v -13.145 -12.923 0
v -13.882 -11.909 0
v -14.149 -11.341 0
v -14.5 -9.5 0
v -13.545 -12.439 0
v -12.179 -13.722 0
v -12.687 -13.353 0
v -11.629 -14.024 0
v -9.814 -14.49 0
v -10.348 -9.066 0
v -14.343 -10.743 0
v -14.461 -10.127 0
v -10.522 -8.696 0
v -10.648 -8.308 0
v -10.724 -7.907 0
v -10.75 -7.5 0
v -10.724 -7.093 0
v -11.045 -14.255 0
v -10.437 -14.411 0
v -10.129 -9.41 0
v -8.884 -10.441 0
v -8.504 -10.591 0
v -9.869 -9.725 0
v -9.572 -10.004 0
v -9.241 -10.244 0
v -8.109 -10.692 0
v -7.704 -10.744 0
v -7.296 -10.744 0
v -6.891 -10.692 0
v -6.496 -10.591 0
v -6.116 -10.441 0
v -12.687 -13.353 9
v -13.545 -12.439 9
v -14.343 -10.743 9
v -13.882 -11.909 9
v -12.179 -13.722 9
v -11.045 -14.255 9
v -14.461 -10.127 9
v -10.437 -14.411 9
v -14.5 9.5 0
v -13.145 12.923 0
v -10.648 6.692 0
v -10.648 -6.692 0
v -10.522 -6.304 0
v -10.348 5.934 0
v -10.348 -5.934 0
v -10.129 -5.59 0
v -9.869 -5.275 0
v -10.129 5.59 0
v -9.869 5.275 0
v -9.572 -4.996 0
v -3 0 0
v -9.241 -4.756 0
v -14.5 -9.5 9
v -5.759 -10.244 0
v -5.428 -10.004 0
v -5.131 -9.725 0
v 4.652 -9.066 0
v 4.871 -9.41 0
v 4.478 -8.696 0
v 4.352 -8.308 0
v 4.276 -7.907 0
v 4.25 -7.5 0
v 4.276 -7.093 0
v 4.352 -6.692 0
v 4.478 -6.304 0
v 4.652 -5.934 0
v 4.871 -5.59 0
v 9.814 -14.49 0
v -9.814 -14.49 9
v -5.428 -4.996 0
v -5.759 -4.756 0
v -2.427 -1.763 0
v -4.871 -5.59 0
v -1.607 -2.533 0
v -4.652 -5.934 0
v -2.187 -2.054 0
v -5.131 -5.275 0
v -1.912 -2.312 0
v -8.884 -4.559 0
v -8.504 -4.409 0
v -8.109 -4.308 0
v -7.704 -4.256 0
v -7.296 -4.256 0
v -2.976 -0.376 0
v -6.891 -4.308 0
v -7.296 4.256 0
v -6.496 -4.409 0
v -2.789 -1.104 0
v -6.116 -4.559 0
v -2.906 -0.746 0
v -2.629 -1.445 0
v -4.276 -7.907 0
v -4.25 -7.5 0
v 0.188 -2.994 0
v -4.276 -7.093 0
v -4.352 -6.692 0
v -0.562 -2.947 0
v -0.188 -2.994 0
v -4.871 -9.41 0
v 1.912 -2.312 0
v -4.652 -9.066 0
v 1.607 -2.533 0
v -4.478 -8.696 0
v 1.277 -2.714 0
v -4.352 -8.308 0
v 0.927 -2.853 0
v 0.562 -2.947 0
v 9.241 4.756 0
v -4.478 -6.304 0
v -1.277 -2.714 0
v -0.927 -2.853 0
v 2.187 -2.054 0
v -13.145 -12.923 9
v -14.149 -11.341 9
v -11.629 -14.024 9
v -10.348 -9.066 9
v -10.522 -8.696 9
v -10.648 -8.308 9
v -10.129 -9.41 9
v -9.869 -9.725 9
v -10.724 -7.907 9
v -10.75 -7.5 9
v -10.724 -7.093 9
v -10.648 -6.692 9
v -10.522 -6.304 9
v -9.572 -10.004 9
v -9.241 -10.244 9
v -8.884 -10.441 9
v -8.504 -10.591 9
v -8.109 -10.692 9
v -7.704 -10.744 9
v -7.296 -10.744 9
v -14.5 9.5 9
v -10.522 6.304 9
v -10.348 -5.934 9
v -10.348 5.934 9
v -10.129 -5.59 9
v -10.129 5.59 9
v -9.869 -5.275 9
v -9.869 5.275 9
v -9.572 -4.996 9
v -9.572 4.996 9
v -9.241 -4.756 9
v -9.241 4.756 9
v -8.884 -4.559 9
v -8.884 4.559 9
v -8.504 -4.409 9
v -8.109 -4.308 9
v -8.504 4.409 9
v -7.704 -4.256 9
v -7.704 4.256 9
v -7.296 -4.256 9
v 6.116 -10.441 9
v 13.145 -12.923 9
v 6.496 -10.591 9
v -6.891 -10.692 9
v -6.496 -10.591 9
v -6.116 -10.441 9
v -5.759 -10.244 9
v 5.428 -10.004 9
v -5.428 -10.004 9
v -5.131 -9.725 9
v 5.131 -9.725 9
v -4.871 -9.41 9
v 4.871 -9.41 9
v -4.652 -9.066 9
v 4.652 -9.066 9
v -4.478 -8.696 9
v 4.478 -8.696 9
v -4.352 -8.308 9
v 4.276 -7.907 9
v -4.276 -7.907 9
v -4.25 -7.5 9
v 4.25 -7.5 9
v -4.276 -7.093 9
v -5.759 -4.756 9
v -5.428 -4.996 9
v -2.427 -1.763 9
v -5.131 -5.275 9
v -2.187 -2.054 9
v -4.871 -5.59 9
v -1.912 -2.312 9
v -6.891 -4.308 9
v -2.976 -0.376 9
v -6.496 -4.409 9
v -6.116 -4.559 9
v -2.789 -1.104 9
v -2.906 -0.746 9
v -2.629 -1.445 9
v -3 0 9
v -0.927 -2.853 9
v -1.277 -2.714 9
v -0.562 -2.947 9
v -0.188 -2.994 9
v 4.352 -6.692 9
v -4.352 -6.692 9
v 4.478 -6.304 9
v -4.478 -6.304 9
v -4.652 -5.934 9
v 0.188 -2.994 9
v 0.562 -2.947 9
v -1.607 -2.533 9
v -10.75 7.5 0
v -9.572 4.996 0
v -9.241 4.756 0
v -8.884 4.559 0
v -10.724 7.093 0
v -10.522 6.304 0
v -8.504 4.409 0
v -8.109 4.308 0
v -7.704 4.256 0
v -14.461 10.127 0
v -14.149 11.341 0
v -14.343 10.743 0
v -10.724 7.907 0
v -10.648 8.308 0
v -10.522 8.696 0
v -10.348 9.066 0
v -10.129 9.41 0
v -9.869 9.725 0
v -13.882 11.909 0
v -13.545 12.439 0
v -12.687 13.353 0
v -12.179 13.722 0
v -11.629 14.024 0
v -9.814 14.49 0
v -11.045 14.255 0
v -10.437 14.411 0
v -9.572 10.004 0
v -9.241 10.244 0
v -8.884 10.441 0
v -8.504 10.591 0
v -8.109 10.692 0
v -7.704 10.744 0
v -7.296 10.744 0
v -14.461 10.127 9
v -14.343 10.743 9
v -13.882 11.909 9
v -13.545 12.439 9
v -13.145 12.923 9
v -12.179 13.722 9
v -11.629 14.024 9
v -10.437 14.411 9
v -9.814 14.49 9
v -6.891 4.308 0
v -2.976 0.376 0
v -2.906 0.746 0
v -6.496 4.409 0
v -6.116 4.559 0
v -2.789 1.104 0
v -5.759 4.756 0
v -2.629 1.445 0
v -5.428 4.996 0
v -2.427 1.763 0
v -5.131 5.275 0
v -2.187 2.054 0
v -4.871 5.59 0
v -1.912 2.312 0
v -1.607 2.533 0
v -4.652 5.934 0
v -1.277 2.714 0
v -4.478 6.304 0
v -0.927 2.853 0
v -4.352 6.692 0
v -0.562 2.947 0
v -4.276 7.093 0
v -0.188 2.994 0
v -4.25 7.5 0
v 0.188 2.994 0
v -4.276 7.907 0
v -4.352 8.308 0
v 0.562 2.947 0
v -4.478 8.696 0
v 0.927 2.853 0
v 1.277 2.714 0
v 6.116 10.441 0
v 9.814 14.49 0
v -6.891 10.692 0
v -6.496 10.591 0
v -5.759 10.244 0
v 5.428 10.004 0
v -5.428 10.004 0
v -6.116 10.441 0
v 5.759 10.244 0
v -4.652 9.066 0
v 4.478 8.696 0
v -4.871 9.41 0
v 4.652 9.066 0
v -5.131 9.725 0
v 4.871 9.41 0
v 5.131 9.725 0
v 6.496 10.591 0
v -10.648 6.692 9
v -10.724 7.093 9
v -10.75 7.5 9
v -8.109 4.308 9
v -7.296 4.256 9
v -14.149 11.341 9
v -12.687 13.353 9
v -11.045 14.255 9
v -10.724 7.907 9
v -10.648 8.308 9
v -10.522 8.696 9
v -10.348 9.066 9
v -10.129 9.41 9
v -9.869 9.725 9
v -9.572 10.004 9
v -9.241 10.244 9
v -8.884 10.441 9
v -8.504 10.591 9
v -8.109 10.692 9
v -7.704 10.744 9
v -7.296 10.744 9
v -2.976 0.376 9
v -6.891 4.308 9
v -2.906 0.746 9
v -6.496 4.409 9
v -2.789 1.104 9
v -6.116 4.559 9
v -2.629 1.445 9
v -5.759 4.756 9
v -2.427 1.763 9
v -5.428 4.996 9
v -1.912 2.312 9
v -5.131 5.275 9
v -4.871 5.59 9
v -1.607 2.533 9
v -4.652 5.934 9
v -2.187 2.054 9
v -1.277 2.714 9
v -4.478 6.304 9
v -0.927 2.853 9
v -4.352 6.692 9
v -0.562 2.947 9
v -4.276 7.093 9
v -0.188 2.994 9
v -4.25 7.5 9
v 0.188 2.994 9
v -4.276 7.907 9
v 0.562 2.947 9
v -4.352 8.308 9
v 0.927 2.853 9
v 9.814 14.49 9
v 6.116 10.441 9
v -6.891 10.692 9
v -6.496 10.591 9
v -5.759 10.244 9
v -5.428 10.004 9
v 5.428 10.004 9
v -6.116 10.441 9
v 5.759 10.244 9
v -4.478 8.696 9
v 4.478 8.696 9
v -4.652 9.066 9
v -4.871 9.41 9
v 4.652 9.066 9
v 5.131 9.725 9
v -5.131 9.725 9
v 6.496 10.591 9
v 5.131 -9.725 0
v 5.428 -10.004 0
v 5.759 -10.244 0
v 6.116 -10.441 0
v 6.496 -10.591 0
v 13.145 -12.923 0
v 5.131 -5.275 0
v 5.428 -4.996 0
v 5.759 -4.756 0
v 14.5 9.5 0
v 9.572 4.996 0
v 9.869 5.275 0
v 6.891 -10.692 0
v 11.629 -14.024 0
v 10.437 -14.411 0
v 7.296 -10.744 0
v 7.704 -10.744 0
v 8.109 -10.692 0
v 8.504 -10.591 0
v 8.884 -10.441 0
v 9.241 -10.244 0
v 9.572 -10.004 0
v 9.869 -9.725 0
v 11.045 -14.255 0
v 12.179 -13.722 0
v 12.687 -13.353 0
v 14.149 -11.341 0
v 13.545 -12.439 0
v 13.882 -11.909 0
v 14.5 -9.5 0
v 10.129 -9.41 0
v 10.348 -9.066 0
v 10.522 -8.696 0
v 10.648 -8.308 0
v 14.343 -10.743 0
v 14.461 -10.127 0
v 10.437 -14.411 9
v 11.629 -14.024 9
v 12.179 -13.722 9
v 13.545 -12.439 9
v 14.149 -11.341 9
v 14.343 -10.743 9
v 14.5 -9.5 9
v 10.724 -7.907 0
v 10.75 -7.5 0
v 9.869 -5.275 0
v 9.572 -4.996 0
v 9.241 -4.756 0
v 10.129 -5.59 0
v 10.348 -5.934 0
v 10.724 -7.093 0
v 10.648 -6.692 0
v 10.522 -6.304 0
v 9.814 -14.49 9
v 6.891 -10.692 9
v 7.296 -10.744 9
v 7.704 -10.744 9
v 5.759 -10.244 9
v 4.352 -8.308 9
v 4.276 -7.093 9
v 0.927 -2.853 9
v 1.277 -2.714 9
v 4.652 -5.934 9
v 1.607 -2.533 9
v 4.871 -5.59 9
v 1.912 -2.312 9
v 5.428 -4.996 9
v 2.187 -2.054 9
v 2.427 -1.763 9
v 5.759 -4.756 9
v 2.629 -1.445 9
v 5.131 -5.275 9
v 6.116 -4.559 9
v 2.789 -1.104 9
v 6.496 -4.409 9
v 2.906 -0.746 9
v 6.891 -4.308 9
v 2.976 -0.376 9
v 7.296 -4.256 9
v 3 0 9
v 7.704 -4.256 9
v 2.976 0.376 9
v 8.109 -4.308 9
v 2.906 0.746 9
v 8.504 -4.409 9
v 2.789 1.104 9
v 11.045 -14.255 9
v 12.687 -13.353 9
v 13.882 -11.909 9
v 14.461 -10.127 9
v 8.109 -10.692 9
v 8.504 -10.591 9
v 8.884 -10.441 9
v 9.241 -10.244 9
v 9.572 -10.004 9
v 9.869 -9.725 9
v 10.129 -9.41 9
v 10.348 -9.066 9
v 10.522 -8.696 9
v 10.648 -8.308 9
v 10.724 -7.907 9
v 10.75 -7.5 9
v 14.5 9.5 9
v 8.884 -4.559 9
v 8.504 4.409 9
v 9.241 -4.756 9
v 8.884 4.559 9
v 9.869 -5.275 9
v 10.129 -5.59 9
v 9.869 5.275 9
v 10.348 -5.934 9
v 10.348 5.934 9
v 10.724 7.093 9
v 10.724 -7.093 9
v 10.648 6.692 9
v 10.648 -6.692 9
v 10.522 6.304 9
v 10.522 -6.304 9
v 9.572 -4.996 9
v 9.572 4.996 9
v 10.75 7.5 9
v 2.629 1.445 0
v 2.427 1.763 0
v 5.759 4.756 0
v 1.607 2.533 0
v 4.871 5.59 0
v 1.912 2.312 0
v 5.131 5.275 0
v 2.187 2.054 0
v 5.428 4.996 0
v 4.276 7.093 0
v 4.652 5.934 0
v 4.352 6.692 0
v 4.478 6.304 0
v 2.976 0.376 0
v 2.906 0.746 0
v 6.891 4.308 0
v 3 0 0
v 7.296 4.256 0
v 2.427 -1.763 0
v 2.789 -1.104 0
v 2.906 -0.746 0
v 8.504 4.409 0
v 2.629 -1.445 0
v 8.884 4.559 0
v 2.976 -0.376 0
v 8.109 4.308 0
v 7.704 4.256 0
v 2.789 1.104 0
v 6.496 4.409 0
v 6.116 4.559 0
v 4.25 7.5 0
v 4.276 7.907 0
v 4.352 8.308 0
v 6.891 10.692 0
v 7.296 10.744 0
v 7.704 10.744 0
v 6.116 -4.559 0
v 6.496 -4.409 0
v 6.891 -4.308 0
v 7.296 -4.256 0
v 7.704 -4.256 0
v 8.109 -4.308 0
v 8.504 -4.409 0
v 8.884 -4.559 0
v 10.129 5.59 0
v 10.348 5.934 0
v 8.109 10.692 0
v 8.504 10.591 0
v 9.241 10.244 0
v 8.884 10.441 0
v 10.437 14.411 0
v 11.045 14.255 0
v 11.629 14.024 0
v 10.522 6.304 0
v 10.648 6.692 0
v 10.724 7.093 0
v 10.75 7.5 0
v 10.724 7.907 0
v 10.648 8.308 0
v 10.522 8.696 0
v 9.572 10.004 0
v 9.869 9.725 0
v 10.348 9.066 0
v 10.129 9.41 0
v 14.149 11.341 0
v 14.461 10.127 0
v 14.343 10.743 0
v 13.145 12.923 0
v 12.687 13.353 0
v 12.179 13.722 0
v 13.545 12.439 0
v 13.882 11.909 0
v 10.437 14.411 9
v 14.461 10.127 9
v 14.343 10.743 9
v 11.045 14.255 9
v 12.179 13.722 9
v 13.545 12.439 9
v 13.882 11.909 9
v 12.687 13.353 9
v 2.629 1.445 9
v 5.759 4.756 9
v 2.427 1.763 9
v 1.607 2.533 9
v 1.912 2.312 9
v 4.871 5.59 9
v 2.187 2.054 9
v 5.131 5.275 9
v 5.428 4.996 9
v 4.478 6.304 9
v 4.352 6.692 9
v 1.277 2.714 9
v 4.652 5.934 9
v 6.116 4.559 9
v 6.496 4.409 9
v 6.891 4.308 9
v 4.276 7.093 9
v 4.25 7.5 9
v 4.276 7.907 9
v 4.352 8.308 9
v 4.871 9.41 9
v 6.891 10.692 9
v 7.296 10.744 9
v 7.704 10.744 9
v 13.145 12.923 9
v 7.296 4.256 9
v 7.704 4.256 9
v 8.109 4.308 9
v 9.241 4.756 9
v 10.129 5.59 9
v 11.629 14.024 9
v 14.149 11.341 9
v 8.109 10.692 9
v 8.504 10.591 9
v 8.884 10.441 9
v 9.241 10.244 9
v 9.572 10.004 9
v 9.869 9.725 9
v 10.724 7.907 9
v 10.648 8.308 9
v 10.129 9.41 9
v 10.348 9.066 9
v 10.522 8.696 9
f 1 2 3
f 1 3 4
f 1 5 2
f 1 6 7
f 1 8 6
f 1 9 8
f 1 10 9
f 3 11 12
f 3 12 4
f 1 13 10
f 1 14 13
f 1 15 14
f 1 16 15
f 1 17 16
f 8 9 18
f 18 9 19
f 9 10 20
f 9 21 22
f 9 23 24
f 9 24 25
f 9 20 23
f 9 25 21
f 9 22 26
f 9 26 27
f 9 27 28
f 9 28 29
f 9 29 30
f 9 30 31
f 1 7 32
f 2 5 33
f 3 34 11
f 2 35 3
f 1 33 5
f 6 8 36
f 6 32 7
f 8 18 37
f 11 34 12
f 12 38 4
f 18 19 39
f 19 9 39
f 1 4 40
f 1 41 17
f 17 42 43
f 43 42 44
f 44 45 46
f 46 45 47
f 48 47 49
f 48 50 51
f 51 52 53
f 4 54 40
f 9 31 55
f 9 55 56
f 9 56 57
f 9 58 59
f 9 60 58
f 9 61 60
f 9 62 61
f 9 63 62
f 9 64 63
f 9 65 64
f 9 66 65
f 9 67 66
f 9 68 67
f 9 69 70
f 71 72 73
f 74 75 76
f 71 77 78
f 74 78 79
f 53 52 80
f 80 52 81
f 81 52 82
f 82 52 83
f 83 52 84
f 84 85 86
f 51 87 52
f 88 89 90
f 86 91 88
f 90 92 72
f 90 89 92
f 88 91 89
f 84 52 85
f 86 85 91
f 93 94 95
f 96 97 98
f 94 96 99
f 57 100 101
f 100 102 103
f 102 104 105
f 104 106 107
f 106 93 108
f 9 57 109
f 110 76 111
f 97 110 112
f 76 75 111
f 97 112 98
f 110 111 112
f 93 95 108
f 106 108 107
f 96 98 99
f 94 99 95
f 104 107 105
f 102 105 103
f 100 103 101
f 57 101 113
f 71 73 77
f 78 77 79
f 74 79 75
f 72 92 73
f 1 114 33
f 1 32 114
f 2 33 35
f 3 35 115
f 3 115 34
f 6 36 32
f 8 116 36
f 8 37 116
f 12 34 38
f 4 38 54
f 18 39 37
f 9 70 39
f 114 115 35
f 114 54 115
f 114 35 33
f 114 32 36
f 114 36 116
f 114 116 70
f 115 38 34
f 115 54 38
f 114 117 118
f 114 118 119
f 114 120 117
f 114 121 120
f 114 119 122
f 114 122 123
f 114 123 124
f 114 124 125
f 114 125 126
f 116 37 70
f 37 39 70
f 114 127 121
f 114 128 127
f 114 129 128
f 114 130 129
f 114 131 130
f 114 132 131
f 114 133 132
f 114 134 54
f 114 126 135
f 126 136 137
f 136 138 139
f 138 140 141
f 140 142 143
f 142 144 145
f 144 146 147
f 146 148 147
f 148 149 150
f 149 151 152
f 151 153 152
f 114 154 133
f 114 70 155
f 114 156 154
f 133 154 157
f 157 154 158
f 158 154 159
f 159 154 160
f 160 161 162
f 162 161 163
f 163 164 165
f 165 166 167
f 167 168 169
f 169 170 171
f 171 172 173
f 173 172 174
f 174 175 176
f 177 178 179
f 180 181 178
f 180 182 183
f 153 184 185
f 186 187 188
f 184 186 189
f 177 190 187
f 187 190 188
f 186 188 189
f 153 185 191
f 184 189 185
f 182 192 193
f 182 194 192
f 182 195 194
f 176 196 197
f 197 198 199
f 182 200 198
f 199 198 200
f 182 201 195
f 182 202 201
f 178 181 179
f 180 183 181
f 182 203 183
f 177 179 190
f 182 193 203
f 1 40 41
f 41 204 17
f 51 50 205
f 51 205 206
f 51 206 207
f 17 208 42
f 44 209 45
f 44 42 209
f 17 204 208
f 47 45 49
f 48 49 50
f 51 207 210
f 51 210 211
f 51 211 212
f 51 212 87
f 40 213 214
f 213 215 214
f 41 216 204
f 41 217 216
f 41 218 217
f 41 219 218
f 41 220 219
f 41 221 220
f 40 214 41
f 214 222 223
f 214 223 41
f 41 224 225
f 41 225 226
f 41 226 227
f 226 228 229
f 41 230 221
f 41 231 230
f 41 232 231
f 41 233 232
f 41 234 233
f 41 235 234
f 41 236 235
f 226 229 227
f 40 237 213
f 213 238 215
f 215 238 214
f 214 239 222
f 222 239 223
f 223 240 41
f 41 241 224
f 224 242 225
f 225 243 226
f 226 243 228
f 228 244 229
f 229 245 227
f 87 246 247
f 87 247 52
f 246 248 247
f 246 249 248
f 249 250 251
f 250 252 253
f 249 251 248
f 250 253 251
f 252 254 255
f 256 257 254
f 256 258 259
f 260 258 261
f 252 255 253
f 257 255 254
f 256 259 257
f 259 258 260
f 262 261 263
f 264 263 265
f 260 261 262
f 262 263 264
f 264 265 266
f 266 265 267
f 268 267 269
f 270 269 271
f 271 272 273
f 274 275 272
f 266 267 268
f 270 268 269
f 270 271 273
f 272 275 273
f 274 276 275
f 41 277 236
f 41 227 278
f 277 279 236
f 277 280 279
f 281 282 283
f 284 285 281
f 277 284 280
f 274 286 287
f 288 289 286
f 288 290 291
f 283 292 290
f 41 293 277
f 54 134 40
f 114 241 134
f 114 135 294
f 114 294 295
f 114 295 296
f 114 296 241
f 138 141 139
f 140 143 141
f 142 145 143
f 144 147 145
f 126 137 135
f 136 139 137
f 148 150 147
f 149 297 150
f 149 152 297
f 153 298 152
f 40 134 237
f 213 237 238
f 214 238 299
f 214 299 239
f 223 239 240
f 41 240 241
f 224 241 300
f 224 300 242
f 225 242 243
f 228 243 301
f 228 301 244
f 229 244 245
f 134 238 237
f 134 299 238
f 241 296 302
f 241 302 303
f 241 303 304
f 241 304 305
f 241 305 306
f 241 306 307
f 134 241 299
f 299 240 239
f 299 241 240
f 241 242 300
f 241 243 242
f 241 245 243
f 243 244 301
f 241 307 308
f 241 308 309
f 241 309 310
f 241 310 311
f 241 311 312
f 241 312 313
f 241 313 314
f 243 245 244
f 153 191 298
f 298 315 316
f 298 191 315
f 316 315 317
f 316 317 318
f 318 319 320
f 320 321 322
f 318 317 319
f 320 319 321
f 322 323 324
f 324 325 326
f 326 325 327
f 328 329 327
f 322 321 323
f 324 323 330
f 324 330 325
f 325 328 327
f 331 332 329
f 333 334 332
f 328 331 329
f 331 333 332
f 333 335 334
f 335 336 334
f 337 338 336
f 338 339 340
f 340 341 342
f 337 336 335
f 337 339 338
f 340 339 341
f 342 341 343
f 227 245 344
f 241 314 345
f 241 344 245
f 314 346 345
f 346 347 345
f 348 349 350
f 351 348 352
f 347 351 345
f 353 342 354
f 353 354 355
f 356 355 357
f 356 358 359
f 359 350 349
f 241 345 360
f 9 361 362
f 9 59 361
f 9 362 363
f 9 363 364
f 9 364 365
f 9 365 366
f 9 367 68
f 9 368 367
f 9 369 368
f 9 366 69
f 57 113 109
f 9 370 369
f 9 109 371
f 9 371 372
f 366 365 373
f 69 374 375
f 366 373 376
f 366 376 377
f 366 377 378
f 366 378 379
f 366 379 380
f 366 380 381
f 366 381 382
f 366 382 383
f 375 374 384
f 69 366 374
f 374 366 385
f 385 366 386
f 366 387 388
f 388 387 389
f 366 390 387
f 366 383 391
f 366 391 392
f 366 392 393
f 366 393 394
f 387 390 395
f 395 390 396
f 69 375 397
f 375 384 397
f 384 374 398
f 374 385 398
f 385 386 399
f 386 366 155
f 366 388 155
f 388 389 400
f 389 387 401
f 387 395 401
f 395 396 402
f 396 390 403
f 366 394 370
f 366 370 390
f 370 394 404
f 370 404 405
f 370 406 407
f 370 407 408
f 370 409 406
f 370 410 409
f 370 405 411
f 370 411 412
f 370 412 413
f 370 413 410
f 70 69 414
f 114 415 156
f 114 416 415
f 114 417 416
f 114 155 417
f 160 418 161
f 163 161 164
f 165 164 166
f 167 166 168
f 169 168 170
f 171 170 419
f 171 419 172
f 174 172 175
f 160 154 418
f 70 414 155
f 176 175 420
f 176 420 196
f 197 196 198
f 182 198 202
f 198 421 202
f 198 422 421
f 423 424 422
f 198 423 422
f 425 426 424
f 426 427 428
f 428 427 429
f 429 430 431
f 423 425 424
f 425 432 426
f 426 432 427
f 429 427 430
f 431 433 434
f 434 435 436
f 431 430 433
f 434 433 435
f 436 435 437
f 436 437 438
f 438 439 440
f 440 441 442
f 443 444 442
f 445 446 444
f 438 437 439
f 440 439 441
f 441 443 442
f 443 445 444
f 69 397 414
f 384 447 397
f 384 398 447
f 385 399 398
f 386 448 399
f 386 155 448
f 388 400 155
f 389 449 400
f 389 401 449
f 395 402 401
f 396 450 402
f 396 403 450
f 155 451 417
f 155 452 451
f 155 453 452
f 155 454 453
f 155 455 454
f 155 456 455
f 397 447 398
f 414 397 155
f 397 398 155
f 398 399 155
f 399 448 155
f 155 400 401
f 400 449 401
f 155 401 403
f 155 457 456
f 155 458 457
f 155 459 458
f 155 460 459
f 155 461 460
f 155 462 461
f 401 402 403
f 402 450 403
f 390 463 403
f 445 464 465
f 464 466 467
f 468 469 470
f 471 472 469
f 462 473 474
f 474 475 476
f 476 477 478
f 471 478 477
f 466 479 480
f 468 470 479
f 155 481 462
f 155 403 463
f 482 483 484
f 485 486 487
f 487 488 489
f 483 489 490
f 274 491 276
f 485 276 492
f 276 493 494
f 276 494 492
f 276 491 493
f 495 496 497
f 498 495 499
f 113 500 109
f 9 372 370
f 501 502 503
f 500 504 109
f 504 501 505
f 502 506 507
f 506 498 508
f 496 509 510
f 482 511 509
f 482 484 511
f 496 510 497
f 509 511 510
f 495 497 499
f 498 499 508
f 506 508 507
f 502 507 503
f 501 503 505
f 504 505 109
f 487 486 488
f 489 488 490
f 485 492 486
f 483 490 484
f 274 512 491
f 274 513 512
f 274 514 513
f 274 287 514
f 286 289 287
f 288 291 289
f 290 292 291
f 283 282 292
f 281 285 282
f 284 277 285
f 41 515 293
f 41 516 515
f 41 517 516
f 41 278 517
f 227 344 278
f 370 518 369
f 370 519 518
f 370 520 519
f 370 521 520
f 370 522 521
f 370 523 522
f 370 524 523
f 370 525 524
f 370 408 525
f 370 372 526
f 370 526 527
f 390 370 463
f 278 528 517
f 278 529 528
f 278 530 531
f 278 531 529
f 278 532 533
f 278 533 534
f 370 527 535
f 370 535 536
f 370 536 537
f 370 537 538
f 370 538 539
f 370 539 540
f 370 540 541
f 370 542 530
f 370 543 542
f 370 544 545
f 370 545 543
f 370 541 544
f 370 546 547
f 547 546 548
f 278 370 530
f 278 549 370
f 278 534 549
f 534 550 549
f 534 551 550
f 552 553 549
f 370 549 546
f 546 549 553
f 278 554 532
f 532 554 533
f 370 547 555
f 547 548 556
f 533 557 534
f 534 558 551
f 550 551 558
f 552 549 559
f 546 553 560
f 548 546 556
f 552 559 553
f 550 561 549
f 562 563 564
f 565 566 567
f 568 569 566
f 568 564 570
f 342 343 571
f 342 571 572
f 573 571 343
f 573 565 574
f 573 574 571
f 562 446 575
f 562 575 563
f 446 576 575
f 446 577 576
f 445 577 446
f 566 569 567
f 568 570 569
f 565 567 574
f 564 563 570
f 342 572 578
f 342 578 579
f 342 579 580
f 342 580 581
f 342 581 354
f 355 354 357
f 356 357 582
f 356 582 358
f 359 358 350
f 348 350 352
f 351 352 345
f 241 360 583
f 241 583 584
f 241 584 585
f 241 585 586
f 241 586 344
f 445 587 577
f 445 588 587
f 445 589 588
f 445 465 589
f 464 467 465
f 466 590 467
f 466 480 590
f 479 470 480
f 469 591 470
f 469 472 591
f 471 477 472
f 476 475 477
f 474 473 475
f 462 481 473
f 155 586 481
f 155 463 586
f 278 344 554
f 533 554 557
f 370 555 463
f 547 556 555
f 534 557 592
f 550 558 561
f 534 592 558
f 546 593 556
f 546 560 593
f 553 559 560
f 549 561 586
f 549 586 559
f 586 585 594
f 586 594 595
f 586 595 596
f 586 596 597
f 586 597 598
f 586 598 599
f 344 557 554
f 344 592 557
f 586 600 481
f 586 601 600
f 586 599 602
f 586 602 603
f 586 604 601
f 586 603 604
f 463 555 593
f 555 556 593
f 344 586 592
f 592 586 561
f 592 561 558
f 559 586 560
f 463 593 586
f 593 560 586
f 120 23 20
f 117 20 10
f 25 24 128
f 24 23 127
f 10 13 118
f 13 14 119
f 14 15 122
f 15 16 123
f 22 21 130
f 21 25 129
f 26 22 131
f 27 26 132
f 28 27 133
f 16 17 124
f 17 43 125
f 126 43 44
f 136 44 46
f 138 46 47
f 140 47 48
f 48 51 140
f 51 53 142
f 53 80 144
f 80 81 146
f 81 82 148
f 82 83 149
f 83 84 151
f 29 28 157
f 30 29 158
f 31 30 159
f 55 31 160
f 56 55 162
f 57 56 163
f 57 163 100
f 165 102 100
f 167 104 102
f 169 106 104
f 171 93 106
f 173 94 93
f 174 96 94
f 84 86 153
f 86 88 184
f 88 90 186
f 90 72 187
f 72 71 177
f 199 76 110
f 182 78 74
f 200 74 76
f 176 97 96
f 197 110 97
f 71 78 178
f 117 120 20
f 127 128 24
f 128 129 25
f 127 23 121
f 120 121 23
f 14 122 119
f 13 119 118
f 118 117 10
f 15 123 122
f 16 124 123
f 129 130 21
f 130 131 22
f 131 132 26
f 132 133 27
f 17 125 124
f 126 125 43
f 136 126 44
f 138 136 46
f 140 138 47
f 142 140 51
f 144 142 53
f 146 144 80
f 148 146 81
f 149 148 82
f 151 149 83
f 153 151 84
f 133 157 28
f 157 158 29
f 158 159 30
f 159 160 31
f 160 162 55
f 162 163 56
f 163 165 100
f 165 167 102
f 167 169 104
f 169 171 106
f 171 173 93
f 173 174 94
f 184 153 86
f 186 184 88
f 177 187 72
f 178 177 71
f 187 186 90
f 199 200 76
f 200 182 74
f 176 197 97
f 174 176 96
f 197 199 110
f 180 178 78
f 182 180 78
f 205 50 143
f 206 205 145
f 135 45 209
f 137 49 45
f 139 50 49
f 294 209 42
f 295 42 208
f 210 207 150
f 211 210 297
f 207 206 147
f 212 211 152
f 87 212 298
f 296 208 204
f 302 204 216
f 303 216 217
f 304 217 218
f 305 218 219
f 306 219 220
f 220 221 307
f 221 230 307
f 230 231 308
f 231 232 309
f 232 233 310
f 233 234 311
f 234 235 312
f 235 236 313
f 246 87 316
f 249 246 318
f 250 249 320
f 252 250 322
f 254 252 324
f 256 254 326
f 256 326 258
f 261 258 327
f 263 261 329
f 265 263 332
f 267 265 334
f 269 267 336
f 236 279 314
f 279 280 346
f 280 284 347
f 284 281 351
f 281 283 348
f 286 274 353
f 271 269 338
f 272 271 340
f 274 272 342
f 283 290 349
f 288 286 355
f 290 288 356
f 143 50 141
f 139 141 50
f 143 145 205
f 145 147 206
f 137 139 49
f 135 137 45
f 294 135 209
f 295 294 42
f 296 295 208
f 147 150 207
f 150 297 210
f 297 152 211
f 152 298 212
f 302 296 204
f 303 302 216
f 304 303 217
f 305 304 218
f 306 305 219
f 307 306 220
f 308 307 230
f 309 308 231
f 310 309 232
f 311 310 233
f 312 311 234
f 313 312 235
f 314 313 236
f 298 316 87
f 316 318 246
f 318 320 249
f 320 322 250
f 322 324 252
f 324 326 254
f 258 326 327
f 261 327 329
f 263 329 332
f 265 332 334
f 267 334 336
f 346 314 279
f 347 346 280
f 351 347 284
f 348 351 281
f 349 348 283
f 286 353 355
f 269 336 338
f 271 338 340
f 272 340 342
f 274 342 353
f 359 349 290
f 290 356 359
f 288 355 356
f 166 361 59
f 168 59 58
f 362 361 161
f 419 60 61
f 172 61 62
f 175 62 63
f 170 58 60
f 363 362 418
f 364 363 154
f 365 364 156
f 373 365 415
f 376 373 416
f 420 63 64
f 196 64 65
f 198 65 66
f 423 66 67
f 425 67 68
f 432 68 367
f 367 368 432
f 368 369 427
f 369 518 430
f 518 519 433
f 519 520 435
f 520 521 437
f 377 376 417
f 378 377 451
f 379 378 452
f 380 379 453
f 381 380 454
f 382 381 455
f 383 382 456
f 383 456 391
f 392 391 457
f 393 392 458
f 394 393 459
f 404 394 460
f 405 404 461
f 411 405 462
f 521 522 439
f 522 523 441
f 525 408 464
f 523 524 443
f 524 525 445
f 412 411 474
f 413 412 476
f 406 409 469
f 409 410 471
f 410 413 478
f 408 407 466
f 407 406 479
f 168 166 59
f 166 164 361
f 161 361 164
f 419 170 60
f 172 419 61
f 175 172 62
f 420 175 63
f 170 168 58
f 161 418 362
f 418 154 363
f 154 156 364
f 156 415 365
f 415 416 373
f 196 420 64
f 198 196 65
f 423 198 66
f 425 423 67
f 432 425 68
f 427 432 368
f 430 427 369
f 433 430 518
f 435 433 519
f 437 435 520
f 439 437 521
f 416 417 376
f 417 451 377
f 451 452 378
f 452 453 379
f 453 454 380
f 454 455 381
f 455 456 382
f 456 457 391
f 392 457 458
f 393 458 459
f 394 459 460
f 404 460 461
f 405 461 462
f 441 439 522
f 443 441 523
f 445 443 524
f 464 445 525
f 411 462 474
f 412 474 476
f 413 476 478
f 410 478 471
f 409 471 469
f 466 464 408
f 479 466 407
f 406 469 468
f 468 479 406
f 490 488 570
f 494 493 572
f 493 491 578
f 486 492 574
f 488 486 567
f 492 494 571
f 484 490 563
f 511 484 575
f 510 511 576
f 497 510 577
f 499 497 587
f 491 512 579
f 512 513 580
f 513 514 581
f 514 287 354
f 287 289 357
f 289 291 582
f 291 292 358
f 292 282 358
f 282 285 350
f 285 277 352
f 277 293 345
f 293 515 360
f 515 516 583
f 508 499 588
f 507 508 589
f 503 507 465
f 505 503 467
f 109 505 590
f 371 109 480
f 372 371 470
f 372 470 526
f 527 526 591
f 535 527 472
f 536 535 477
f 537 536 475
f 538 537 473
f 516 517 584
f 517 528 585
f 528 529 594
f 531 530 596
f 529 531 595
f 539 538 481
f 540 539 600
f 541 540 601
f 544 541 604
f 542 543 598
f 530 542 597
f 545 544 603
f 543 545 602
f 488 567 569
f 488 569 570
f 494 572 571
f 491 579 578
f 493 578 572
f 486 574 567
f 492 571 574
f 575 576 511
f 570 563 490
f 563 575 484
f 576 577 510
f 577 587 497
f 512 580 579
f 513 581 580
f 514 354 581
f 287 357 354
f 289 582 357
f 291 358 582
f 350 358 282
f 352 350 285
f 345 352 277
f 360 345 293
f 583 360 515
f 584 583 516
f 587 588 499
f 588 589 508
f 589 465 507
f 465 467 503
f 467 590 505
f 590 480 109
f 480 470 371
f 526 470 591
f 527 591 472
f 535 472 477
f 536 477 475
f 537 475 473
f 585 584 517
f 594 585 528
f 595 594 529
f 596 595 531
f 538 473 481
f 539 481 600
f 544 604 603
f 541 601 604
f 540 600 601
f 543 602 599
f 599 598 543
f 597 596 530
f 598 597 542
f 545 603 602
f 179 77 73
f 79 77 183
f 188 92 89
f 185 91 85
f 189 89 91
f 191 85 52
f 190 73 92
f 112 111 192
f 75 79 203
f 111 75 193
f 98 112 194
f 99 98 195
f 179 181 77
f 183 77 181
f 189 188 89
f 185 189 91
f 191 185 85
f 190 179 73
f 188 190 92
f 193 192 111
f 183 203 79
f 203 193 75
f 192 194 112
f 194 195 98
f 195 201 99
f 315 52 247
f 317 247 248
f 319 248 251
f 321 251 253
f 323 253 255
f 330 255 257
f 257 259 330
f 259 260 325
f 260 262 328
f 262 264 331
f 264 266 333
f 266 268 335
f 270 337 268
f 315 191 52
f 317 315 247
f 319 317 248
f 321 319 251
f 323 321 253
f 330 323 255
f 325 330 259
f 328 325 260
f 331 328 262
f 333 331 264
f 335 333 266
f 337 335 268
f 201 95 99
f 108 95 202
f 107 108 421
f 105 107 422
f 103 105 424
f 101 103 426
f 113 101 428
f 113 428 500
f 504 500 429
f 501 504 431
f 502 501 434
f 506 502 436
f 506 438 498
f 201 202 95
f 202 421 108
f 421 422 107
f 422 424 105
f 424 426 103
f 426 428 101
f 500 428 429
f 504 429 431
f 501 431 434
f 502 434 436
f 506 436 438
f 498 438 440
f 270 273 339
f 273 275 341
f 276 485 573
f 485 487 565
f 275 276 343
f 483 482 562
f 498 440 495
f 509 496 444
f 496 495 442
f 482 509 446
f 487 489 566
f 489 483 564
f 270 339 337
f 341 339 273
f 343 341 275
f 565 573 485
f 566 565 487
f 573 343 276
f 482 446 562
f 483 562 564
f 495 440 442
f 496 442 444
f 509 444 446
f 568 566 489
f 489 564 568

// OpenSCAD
$fn = 50;

difference() {
	union() {
		hull() {
			translate(v = [-9.5, 9.5, 0]) {
				cylinder(h = 9, r = 5);
			}
			translate(v = [9.5, 9.5, 0]) {
				cylinder(h = 9, r = 5);
			}
			translate(v = [-9.5, -9.5, 0]) {
				cylinder(h = 9, r = 5);
			}
			translate(v = [9.5, -9.5, 0]) {
				cylinder(h = 9, r = 5);
			}
		}
	}
	union() {
		translate(v = [-7.5, -7.5, 0]) {
			cylinder(h = 9, r = 3.25);
		}
		translate(v = [-7.5, 7.5, 0]) {
			cylinder(h = 9, r = 3.25);
		}
		translate(v = [7.5, -7.5, 0]) {
			cylinder(h = 9, r = 3.25);
		}
		translate(v = [7.5, 7.5, 0]) {
			cylinder(h = 9, r = 3.25);
		}
		cylinder(h = 9, r = 3.0);
	}
}
